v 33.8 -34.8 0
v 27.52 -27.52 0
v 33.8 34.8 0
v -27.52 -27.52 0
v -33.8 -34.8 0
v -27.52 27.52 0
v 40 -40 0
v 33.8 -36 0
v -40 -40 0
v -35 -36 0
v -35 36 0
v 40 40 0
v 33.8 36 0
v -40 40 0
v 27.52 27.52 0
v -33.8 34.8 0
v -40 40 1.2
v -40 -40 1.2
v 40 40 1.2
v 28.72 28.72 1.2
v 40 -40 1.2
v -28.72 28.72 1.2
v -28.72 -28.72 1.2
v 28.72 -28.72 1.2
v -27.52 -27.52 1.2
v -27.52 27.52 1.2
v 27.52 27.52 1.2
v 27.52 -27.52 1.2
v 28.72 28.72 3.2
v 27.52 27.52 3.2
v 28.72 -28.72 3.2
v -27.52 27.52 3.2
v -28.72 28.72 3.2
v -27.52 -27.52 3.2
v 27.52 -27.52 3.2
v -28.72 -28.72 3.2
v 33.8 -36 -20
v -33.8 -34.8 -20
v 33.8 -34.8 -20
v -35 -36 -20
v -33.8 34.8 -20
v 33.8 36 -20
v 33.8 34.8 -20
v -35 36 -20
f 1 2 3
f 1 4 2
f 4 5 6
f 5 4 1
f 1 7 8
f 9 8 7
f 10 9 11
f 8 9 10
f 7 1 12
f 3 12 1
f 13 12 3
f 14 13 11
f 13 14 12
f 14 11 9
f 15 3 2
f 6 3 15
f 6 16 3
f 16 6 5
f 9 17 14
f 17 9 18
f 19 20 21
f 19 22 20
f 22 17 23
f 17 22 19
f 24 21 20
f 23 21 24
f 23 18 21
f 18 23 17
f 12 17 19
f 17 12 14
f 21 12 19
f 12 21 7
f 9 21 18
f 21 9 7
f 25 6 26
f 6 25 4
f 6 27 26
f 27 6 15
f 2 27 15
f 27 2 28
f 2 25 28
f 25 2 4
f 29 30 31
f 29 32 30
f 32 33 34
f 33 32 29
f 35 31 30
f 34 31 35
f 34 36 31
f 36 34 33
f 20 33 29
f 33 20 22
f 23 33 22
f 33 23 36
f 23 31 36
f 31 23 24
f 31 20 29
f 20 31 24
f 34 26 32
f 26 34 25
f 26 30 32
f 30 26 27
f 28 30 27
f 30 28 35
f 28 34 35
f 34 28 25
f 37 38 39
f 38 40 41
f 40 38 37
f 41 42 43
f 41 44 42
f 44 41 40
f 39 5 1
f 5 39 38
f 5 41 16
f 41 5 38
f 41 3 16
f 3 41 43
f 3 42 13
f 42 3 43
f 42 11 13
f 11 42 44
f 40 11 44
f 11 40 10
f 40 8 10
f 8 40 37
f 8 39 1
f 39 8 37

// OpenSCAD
// ============================================================
// hat.scad
// 80mm x 80mm 정사각형 판재, 두께 1.2mm.
// 판재 정중앙에 55.04mm x 55.04mm 정사각형 관통 구멍.
// 구멍 가장자리에 벽(사각 링)을 Z축 방향 위로 2mm 높이, 1.2mm 두께로 세움.
// ============================================================

module hat() {
    plate_size = 80;   // 바깥 정사각형 한 변 (70 -> 80)
    plate_t    = 1.2;  // 판재 두께

    hole_size  = 55.04; // 중앙 정사각형 구멍 한 변

    wall_t = 1.2; // 구멍 가장자리 벽 두께
    wall_z = 2;   // 구멍 가장자리 벽 높이
    wall_outer = hole_size + 2 * wall_t; // 벽 바깥쪽 치수

    color("gray")
        difference() {
            linear_extrude(height = plate_t)
                square([plate_size, plate_size], center = true);
            translate([0, 0, -0.1])
                linear_extrude(height = plate_t + 0.2)
                    square([hole_size, hole_size], center = true);
        }

    // 구멍 가장자리 벽 (사각 링): 안쪽 면이 구멍 경계에 맞닿고, 판재 위로 wall_z만큼 돌출
    color("SteelBlue")
        translate([0, 0, plate_t])
            linear_extrude(height = wall_z)
                difference() {
                    square([wall_outer, wall_outer], center = true);
                    square([hole_size, hole_size], center = true);
                }

    // Z축 음수방향 ㄷ자 브라켓: 정사각형 정중앙 기준 70x72mm (X x Y, 60x60에서 변경),
    // 두께 1.2mm, 높이 20mm.
    // X축 양수방향 벽이 열려있는 "ㄷ"자 형태 (다른 사각 링들과 동일하게 +X쪽을 열어둠 - 확인 필요).
    bracket_outer_x = 70;
    bracket_outer_y = 72;
    bracket_t       = 1.2;
    bracket_z       = 20;
    bracket_inner_x = bracket_outer_x - 2 * bracket_t;
    bracket_inner_y = bracket_outer_y - 2 * bracket_t;

    color("SteelBlue")
        translate([0, 0, -bracket_z])
            linear_extrude(height = bracket_z)
                difference() {
                    difference() {
                        square([bracket_outer_x, bracket_outer_y], center = true);
                        square([bracket_inner_x, bracket_inner_y], center = true);
                    }
                    // X축 양수방향 벽 제거
                    translate([bracket_inner_x / 2, -bracket_outer_y / 2 - 0.1])
                        square([bracket_outer_x / 2 - bracket_inner_x / 2 + 0.2, bracket_outer_y + 0.2]);
                }
}

hat();
